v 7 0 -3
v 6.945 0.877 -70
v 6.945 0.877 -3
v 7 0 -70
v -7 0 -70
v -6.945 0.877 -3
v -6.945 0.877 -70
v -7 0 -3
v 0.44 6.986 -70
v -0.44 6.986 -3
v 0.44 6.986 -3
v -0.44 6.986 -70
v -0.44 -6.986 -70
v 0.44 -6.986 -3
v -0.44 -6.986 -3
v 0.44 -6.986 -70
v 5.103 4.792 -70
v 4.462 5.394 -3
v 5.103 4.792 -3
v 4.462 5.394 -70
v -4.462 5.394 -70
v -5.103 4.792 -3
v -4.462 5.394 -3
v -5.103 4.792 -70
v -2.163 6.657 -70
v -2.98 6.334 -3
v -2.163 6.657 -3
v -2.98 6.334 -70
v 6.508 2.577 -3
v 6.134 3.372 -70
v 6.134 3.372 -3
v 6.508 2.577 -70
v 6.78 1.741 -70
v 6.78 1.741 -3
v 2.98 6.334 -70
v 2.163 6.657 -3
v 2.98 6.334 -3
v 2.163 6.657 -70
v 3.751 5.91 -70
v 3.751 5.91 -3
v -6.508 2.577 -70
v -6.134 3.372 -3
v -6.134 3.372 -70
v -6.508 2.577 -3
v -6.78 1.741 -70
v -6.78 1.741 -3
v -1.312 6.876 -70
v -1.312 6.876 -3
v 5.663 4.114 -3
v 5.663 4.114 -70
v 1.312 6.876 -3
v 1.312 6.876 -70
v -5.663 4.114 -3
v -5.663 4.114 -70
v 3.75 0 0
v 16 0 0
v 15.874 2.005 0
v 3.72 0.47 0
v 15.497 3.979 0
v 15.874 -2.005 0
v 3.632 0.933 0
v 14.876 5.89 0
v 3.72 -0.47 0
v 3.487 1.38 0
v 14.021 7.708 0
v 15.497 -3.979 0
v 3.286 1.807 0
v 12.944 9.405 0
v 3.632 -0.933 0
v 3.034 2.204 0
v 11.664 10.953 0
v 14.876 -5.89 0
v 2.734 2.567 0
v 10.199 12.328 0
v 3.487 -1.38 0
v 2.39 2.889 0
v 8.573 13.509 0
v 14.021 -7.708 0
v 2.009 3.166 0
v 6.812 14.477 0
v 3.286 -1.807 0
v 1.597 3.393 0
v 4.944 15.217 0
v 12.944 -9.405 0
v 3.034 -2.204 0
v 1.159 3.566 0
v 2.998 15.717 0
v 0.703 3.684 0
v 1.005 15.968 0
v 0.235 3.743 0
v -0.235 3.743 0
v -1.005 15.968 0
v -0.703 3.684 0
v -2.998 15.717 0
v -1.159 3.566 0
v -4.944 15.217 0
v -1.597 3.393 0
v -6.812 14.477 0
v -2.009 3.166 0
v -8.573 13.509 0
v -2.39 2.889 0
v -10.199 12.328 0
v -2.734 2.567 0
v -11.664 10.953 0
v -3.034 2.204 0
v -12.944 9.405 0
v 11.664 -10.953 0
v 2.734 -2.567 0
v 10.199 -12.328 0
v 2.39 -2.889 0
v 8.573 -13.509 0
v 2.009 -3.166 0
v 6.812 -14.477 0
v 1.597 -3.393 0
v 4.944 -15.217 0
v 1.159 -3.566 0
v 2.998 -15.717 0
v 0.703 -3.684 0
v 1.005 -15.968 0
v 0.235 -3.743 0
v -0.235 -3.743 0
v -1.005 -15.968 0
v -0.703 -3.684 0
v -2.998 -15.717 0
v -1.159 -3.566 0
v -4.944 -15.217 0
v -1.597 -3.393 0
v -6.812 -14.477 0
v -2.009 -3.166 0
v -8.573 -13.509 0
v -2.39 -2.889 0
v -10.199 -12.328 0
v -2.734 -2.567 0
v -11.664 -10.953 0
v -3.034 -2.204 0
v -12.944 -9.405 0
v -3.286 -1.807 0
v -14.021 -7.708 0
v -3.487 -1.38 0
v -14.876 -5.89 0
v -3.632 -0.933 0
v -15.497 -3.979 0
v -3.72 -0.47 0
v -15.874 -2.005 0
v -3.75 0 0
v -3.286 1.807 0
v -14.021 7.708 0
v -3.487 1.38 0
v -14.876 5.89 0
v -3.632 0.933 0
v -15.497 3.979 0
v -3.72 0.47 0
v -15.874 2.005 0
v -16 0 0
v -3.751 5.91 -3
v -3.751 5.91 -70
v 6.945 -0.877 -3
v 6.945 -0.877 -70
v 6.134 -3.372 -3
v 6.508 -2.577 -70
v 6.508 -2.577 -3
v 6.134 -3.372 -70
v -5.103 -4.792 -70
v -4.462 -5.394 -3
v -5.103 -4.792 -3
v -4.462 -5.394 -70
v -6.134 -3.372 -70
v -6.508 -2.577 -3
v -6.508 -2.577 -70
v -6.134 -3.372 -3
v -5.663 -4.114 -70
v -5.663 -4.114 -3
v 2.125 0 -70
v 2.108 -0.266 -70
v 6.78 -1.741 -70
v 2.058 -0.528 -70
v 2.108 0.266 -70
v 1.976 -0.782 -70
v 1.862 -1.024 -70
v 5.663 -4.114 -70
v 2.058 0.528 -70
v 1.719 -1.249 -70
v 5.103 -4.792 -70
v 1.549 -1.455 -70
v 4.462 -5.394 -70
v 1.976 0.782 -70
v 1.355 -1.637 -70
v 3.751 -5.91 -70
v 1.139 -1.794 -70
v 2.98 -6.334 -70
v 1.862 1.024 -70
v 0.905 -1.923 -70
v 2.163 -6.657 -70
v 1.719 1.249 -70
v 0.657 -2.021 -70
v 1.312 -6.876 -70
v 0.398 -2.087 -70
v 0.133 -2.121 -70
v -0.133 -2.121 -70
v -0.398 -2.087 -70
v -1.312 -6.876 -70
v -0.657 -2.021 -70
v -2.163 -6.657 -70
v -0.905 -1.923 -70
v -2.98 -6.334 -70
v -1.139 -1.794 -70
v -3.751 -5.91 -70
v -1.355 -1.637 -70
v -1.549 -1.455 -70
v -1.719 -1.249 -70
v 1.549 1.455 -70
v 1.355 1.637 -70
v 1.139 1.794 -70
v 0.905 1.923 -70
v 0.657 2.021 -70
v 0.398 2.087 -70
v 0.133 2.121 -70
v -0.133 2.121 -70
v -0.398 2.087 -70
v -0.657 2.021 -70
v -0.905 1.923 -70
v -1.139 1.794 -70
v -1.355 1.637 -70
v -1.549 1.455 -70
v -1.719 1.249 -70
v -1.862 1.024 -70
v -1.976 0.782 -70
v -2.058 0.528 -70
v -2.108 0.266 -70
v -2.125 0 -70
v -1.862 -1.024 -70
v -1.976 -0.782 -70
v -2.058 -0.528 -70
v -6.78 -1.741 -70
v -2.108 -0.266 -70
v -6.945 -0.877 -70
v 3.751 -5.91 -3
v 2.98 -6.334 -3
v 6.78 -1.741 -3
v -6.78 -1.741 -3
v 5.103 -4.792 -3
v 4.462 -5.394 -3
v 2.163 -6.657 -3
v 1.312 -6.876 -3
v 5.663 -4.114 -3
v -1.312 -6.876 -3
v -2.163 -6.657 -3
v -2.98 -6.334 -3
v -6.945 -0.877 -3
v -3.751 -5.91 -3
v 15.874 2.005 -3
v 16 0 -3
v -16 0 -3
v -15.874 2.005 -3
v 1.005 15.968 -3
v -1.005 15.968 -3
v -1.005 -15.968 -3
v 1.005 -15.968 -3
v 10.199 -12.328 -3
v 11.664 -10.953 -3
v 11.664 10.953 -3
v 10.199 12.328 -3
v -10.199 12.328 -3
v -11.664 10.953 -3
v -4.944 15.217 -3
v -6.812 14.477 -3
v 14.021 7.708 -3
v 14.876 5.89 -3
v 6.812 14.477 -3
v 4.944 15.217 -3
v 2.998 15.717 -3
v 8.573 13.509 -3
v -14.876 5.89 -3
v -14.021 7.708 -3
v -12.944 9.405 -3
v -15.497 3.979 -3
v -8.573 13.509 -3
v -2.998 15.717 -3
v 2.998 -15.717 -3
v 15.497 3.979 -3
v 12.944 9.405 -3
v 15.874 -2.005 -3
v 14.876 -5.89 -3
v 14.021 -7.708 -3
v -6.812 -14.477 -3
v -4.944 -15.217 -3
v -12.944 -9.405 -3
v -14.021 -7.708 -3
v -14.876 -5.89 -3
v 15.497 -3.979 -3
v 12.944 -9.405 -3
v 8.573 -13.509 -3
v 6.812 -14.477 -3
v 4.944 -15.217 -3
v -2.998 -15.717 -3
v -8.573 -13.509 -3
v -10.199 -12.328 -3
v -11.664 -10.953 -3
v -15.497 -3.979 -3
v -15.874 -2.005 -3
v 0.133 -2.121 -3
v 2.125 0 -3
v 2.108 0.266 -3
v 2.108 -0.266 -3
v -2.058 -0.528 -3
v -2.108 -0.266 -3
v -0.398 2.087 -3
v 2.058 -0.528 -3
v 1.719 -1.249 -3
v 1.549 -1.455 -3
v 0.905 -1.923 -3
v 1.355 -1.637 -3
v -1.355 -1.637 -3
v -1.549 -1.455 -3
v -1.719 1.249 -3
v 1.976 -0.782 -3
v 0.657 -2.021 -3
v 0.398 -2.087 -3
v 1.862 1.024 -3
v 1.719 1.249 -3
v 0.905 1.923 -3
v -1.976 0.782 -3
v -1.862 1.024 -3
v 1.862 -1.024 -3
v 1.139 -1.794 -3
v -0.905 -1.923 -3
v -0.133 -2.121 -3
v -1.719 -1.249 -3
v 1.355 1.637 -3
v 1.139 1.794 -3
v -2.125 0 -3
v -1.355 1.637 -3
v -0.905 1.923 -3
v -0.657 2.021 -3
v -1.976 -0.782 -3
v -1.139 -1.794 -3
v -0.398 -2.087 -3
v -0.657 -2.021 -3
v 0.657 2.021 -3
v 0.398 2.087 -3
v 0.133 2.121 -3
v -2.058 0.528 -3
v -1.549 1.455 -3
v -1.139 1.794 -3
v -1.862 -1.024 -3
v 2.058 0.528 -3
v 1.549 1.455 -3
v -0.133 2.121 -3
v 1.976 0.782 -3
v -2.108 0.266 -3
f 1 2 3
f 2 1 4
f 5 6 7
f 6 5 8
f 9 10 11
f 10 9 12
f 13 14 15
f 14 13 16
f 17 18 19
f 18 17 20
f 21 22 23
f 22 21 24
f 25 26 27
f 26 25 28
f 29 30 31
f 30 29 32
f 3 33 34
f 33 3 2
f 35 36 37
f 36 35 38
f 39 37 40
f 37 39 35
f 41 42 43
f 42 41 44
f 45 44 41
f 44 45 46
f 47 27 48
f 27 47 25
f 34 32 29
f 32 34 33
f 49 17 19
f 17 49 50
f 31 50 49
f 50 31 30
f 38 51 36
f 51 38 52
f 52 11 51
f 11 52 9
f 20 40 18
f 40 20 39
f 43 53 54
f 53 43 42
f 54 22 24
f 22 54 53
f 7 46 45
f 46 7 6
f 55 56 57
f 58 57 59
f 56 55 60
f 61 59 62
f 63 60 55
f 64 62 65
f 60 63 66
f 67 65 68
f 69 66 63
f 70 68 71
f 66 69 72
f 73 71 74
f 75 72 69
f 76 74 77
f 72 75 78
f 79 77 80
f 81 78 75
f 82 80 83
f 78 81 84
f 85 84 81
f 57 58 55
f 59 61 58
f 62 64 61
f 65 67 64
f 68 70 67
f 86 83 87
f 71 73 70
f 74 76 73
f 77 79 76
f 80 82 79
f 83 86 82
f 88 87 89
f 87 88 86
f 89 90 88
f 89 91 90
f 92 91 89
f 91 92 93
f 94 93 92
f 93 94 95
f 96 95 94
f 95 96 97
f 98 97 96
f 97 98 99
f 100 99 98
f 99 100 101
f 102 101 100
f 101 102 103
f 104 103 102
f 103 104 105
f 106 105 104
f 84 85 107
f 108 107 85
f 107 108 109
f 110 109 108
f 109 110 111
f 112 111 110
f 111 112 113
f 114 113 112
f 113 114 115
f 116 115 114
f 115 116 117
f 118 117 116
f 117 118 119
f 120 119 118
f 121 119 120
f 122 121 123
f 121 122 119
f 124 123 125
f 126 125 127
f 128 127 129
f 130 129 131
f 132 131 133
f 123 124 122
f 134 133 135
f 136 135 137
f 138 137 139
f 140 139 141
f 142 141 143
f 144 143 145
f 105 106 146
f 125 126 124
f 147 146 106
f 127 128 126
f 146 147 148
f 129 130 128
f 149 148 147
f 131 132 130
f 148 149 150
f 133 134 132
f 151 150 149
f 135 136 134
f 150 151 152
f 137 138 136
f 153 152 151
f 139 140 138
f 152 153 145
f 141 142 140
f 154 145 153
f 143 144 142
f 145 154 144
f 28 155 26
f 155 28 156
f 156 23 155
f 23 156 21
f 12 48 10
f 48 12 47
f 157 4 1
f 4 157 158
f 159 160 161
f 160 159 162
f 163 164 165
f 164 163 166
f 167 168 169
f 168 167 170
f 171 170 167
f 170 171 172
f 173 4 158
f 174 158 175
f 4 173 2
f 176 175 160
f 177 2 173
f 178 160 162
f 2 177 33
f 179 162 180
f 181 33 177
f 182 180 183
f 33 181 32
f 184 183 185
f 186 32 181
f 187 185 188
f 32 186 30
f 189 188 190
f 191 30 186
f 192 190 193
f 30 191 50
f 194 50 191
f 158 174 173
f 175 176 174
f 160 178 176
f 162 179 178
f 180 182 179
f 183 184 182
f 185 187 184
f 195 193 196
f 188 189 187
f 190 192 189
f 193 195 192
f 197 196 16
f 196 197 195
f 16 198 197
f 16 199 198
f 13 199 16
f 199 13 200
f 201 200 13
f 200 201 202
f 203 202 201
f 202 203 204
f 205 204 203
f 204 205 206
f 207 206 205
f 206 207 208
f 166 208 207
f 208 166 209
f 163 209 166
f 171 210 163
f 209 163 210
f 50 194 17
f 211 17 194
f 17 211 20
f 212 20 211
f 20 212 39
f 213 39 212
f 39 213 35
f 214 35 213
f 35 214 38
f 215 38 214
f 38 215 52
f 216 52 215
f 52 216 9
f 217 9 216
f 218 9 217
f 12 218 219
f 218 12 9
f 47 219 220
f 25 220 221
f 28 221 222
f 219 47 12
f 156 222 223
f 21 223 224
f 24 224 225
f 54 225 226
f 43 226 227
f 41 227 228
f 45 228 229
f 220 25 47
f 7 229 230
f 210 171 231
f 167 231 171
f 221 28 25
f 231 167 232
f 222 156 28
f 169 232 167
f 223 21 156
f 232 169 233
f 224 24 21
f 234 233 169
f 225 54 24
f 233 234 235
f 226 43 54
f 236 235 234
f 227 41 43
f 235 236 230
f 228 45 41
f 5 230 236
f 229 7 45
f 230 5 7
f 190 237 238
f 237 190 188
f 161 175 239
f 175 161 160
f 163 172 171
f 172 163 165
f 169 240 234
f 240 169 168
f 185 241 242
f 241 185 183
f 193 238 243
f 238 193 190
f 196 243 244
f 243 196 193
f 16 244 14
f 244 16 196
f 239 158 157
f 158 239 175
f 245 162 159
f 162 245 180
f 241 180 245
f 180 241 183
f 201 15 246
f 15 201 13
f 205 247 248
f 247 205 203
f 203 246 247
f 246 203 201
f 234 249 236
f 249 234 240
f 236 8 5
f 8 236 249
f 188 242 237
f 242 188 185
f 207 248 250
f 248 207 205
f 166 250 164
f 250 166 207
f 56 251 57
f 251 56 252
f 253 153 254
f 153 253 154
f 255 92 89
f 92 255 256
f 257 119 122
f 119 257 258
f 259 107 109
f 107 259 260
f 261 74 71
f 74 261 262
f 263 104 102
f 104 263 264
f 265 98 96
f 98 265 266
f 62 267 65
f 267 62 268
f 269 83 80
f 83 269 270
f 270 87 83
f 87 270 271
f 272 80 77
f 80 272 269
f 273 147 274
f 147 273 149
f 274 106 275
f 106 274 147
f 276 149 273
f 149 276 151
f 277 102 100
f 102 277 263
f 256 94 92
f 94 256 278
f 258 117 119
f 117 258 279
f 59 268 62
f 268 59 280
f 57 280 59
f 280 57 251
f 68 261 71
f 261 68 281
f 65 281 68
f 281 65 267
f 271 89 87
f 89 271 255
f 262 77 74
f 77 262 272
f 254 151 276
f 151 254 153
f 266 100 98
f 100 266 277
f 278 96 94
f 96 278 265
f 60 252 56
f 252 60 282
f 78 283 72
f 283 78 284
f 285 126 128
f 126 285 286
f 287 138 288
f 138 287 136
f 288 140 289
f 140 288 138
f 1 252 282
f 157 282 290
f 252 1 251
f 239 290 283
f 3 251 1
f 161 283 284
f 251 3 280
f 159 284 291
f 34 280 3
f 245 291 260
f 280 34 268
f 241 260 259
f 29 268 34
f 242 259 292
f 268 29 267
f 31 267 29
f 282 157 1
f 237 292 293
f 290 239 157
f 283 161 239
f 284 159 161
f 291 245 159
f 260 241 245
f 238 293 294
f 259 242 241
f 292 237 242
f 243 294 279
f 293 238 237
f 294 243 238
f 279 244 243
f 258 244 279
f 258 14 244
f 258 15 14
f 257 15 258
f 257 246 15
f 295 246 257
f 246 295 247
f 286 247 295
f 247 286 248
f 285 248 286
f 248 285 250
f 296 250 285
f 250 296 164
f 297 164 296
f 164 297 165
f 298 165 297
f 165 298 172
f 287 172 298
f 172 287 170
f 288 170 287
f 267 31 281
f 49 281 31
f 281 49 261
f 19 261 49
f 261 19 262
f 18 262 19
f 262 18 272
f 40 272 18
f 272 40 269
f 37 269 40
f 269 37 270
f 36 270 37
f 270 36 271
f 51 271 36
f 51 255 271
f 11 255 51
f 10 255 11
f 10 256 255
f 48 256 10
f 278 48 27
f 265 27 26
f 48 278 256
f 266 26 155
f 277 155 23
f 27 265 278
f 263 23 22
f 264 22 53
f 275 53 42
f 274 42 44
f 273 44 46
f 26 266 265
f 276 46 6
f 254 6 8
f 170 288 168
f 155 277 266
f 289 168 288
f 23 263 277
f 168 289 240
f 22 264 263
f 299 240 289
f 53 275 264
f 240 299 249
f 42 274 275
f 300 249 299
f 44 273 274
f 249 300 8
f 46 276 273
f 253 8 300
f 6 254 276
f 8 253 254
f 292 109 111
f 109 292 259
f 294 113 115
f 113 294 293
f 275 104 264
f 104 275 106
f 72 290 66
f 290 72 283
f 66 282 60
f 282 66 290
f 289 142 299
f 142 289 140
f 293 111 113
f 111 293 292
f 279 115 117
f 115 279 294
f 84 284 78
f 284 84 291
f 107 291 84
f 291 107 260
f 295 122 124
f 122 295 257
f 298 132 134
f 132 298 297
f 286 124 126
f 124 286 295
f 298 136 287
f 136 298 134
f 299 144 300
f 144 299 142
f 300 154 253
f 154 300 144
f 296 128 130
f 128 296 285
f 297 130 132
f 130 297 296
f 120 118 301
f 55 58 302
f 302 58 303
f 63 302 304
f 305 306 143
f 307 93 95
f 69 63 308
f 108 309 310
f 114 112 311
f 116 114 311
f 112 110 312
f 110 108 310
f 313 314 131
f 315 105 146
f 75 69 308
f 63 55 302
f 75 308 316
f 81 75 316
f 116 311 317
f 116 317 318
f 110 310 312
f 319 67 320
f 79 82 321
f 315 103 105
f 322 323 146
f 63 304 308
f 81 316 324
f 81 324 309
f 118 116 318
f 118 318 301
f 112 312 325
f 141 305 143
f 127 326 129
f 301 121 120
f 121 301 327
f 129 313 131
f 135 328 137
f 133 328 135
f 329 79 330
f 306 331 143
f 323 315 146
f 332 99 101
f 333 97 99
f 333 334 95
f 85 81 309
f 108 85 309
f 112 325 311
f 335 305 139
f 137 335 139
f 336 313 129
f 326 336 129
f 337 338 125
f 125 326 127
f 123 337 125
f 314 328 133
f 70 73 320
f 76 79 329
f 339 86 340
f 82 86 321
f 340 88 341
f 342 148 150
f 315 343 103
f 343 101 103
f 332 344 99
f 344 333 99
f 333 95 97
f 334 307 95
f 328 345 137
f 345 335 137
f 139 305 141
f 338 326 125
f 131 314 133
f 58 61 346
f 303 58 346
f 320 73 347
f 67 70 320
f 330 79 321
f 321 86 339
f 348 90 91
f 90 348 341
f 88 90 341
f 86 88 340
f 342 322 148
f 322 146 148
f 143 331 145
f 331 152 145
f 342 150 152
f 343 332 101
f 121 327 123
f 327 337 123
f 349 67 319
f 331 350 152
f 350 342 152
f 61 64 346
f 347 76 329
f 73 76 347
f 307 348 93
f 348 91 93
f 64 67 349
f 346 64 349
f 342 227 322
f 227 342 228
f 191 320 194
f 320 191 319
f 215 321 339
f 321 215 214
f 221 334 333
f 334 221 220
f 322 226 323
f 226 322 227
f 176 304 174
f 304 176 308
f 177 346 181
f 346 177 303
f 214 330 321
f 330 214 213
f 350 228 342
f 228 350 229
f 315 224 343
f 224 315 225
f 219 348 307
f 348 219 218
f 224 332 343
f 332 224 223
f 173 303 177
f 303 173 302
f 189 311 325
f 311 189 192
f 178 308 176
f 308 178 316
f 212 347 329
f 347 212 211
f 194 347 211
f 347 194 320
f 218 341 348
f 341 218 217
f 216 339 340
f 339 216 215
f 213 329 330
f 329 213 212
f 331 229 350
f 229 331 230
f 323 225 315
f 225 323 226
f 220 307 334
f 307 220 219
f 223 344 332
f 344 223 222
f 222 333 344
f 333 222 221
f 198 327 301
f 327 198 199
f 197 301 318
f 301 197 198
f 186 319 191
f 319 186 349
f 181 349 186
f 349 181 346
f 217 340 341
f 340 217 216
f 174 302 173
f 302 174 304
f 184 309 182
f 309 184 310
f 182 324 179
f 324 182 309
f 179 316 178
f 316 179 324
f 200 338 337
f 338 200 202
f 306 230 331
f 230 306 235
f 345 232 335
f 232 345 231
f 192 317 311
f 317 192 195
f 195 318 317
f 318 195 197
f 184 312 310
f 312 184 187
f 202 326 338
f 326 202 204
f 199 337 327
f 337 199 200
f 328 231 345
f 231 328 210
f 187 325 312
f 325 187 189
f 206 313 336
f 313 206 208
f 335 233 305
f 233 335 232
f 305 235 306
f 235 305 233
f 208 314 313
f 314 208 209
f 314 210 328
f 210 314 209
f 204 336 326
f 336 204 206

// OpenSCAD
$fn = 50;


difference() {
	union() {
		translate(v = [0, 0, -70.0000000000]) {
			cylinder(h = 70, r = 7.0000000000);
		}
		translate(v = [0, 0, -3.0000000000]) {
			cylinder(h = 3, r = 16.0000000000);
		}
	}
	union() {
		translate(v = [0, 0, 0]) {
			rotate(a = [0, 0, 0]) {
				difference() {
					union() {
						#translate(v = [0, 0, -70.0000000000]) {
							cylinder(h = 70, r = 2.0000000000);
						}
						#translate(v = [0, 0, -3]) {
							cylinder(h = 3, r = 7.0000000000, r1 = 2.1250000000, r2 = 3.7500000000);
						}
						#translate(v = [0, 0, -70.0000000000]) {
							cylinder(h = 70, r = 2.1250000000);
						}
						#translate(v = [0, 0, -70.0000000000]) {
							cylinder(h = 70, r = 2.0000000000);
						}
					}
					union();
				}
			}
		}
	}
}
